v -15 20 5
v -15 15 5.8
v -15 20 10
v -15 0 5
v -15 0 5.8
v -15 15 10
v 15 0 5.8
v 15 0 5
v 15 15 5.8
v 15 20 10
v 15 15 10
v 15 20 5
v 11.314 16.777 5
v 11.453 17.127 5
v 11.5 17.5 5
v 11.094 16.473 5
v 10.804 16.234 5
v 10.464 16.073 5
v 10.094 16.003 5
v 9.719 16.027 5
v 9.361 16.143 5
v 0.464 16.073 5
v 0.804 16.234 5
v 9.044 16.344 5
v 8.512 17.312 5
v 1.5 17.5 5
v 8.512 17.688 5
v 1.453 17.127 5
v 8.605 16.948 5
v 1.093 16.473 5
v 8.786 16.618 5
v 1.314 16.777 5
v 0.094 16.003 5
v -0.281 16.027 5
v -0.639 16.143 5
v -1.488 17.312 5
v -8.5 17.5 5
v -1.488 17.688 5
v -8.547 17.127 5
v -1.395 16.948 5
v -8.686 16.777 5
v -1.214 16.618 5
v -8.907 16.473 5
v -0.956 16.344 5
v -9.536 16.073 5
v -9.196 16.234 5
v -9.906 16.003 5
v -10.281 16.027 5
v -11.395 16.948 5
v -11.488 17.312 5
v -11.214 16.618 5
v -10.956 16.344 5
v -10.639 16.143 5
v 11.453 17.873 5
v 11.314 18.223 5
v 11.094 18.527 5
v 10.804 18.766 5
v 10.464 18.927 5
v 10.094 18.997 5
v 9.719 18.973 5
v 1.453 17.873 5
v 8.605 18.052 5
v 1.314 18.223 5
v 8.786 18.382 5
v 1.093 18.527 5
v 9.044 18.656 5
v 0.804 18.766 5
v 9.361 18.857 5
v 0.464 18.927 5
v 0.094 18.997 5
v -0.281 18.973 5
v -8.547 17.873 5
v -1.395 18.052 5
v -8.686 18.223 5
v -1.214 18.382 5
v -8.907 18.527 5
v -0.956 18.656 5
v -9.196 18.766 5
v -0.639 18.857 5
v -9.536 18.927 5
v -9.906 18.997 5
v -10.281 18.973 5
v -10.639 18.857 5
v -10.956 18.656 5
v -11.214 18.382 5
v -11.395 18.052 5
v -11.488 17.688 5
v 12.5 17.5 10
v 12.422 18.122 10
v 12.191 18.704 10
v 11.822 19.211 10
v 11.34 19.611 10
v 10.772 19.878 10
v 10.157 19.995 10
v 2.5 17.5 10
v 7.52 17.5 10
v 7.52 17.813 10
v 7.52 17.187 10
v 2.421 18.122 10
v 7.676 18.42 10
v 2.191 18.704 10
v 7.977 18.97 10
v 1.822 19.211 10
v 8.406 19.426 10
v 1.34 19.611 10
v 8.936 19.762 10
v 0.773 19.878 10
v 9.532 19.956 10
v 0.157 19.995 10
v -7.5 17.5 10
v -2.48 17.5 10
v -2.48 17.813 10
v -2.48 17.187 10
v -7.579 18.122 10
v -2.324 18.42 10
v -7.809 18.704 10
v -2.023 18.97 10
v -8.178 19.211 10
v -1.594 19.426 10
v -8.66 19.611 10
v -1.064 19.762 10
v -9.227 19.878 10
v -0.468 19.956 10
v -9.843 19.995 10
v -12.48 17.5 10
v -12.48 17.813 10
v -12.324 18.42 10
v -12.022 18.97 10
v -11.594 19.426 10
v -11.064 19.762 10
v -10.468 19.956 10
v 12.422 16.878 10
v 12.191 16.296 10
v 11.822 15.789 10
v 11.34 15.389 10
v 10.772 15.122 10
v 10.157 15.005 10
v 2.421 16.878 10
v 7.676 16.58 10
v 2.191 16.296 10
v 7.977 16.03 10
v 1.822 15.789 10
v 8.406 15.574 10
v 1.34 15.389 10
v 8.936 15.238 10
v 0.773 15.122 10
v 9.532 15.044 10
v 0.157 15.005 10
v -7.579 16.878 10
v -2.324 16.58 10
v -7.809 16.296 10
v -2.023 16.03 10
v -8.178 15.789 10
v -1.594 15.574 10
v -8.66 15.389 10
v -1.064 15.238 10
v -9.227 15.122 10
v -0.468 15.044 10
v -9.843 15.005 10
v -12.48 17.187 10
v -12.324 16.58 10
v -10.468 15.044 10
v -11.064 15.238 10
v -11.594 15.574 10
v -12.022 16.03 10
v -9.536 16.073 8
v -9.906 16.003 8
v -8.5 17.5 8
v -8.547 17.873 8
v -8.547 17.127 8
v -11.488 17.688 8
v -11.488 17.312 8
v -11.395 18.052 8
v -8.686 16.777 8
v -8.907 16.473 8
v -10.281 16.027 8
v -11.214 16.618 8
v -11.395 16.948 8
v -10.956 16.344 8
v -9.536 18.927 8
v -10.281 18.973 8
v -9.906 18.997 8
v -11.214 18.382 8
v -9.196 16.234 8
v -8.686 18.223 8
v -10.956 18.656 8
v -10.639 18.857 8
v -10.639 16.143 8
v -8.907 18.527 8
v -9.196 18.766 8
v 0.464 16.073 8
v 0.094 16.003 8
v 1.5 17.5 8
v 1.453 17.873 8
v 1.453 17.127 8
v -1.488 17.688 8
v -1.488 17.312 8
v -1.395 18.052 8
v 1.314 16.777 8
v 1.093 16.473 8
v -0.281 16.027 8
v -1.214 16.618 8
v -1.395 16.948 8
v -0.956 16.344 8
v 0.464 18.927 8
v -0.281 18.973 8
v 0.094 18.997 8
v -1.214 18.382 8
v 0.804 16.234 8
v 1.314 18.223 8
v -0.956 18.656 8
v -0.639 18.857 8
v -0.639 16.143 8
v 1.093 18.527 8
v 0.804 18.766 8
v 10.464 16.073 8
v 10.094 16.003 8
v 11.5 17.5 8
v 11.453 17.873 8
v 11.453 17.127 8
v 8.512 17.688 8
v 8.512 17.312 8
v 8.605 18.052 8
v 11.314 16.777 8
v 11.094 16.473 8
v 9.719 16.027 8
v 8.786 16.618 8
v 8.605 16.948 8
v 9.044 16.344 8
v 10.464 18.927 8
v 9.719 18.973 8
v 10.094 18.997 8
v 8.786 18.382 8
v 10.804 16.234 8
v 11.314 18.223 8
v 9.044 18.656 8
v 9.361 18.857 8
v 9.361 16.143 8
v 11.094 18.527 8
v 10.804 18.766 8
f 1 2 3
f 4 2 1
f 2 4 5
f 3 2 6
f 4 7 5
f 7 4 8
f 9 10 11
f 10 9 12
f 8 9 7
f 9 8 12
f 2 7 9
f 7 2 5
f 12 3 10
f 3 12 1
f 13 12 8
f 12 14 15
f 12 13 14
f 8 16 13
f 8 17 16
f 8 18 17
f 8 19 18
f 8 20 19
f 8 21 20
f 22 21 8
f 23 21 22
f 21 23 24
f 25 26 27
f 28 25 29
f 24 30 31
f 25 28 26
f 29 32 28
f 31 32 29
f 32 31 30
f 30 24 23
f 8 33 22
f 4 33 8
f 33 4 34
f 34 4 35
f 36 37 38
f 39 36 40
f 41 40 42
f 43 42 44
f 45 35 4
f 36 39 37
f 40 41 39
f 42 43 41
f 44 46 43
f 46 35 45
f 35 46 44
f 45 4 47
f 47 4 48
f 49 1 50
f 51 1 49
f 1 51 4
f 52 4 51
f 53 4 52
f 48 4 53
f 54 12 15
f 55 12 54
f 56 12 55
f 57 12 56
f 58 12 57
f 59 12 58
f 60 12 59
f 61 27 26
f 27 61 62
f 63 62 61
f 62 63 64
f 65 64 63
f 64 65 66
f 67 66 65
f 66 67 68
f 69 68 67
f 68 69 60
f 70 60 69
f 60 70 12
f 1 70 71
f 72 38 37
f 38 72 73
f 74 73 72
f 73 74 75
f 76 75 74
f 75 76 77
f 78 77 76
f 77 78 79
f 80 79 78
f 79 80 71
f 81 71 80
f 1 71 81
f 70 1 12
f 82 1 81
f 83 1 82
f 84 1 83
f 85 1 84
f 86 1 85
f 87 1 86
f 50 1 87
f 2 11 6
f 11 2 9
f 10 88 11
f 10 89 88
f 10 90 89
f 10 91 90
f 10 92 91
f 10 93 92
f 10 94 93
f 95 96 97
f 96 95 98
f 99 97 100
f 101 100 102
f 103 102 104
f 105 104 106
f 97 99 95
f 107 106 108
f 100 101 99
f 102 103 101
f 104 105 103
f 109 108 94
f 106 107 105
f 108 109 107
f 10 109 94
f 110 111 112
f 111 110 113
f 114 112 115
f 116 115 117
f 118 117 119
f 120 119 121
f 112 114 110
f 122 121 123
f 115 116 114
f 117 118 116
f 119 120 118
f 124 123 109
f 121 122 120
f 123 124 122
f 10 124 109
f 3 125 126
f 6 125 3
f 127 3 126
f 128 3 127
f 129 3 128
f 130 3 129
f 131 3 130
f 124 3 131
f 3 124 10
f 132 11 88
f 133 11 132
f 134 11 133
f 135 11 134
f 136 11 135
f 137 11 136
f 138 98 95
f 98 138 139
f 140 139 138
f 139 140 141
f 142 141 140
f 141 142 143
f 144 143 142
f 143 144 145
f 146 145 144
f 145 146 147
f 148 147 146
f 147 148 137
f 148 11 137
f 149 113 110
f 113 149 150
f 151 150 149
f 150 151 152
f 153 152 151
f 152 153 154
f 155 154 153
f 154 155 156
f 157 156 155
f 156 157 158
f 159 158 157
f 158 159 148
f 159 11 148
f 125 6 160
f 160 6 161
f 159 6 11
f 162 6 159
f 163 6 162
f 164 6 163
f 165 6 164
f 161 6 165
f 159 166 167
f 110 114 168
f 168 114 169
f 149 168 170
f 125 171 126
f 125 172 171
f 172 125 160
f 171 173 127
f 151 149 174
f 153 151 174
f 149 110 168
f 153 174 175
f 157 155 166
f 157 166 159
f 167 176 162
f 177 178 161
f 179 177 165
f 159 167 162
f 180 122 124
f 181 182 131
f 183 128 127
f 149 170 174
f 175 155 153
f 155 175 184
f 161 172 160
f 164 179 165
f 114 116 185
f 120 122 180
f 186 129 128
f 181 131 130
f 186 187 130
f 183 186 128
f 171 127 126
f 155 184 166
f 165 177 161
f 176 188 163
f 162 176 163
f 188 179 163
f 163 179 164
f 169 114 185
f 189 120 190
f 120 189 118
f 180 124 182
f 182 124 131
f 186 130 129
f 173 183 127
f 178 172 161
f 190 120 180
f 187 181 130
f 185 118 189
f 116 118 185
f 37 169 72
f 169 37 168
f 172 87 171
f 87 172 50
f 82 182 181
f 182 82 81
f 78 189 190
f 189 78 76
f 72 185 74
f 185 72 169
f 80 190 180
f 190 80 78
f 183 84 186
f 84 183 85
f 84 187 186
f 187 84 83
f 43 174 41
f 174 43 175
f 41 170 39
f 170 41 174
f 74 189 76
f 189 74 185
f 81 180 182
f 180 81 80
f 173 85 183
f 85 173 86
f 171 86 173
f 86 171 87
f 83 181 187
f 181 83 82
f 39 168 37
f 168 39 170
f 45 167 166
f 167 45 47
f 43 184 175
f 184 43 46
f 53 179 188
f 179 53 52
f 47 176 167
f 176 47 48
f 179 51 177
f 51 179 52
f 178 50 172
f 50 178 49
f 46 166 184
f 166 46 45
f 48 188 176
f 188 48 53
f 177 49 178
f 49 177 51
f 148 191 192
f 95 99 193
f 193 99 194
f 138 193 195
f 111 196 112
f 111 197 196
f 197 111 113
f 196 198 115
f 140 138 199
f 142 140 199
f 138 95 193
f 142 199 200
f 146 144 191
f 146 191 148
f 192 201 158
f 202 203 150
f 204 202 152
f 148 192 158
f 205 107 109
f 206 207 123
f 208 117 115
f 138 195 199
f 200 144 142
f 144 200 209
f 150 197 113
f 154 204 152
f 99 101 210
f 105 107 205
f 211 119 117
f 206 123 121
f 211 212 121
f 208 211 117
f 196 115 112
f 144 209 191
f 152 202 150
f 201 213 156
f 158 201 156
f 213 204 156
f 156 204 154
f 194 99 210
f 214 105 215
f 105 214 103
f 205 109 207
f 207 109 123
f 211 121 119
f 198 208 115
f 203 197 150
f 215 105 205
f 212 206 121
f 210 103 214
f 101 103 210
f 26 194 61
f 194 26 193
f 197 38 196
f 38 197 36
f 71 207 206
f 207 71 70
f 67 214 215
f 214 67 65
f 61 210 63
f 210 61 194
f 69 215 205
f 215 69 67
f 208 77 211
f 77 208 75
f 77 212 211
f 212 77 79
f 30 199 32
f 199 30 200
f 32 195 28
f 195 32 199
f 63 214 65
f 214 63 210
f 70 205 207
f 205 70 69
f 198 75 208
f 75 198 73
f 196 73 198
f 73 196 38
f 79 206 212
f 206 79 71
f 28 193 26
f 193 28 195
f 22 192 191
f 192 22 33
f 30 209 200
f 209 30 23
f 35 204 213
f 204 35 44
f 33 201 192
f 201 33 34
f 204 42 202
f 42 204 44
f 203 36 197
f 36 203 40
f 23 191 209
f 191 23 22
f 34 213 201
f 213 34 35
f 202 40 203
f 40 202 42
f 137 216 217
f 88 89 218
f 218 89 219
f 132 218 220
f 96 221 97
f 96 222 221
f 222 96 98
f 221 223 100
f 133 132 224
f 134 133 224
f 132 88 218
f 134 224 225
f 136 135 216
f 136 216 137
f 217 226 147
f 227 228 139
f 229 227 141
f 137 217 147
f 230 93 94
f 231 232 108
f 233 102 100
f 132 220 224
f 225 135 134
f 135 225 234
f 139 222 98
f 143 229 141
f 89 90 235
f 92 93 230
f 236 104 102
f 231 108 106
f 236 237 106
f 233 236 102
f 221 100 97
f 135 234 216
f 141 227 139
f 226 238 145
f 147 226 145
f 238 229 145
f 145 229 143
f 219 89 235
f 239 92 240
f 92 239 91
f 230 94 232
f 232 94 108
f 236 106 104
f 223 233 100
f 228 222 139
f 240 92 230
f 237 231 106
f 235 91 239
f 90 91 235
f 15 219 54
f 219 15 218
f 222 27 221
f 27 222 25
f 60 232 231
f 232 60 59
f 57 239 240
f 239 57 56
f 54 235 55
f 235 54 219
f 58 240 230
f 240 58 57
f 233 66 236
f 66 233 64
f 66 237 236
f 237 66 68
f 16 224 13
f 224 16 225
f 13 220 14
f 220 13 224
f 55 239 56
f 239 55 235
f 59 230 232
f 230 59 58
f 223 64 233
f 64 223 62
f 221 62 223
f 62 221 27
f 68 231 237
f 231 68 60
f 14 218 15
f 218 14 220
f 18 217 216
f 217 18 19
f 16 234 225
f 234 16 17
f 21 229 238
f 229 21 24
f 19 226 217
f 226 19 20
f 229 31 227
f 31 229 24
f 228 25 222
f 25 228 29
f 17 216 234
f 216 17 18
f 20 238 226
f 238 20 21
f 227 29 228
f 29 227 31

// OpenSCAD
// file: openscad-extra/src/countersink.scad
/*
Countersink depression for tapered screw heads.
*/

module make_countersink(d1=0, d2=0, h=0, outer=10, inner=0, $fn=25){
    /*
    d1 = shaft diameter
    d2 = head diameter
    h = height of taper
    outer = height of head mass
    inner = height of shaft mass, including taper
    */
    default_taper_height = 2;
    d1 = d1 ? d1 : 2.5;
    d2 = d2 ? d2 : 5;
    h = h ? h : default_taper_height;
    inner = (inner ? inner : 10) - default_taper_height;
    
    translate([0, 0, -default_taper_height/2])
    union(){
        
        // taper
        cylinder(d1=d1, d2=d2, h=h, center=true, $fn=$fn);
    
        // big top
    	translate([0, 0, h/2])
    	cylinder(d=d2, h=outer, center=false, $fn=$fn);
        
    	// lower bottom
    	translate([0, 0, -h/2-inner])
    	cylinder(d=d1, h=inner, center=false, $fn=$fn);
	}
}

make_countersink(inner=10);

color("blue")
translate([0,2,0])
cylinder(d=2.5, h=20, center=true, $fn=100);
// file: foot_mock.scad
use <openscad-extra/src/countersink.scad>;

module foot_mock(){
    difference(){
        union(){
            cube([80, 10, 5], center=true);
            
            if(0)
            difference(){
                color("blue")
                scale([1,1,.6])
                translate([0,0,0])
                rotate([90,0,0])
                cylinder(d=80, h=10, center=true, $fn=50);
                
                // cylinder flat cutout
                if(0)
                translate([0,0,-100/2+5/2])
                cube([100, 100, 100], center=true);
            }
                    
            // pivot hub mass
            for(j=[0:1])
            mirror([j,0,0])
            hull()
            for(i=[0:1])
            translate([(-30/2-10/2/2-.5),0,5/2+5*i])
            rotate([0,90,0])
            cylinder(d=10, h=5, center=true, $fn=50);
        }
        
        // slot cutout
        if(0)
        translate([0,0,50/2+5/2-0.25])
        cube([100, 5.5, 50], center=true);

    
        // bottom mount holes
        color("red")
        for(i=[0:7])
        translate([10*i-35,0,-7])
        rotate([180,0,0])
        make_countersink(d1=2.5, d2=5, inner=10);
        
        // side mount holes
        color("red")
        for(i=[0:6])
        translate([10*i-30,-10,0])
        rotate([90,0,0])
        make_countersink(d1=2.5, d2=5, inner=20);
        
        // pivot holes
        color("red")
        for(i=[0:1])
        mirror([i,0,0])
        translate([-20.5,0,5/2+5])
        rotate([0,-90,0])
        make_countersink(d1=3, d2=5, inner=20);
    }
    
    // mounting holes
    if(0)
    color("red")
    for(i=[0:2])
    translate([11.2*i-11.2,5,17.5+10])
    rotate([-90,0,0])
    make_countersink(d1=2.5, d2=5, inner=20);
    
    
    
    if(0)
    translate([0,10,50/2+5/2])
    cube([30, 20, 50], center=true);
    
}

module foot_mock_ankle(){
    
    difference(){
        
        // main mass
        if(1)
        hull()
        for(i=[0:1])
        translate([0,0,(20+2.5)*i])
        rotate([0,90,0])
        cylinder(d=10-0.5, h=30, center=true, $fn=50);
        
        // mount axle hole
        rotate([0,90,0])
        cylinder(d=2.5, h=100, center=true, $fn=50);
        
        // mounting holes
        translate([0,0,-10+2.5])
        color("red")
        for(i=[0:2])
        translate([11.2*i-11.2, 5-.2, 17.5+10])
        rotate([-90,0,0])
        make_countersink(d1=2.5, d2=5, inner=20);
        
        // slot cutout
        if(1)
        translate([0,0,50/2+5/2+5/2])
        cube([100, 5.5, 50], center=true);
        
    }// end diff
}

module foot_mock_toe(major_length=80, minor_length=10, width=20, height=5){
    difference(){
        //color("red")
        linear_extrude(height=height)
        polygon([[-major_length/2,0], [major_length/2,0], [minor_length/2,width], [-minor_length/2,width]]);
        
        translate([0,5/2,5/2])
        cube([30.5,5.5,5.5], center=true);
        
        // side mount holes
        for(j=[0:1])
        mirror([j,0,0])
        color("red")
        for(i=[0:1])
        translate([10*i-30,4,5/2])
        rotate([-90,0,0])
        make_countersink(d1=3, d2=5, inner=20);
    
        // middle mount hole
        color("red")
        translate([0,20,5/2])
        rotate([-90,0,0])
        make_countersink(d1=3, d2=5, inner=20);

    }
}

module foot_mock_toe_spring(thickness=.4*2, length=20){

    difference(){
        union(){
            translate([0,thickness/2,length/2])
            cube([30, thickness, length], center=true);

            translate([0,5/2,5/2])
            cube([30, 5, 5], center=true);
        }
        
        // side mount holes
        color("red")
        for(i=[0:6])
        translate([10*i-30,5,5/2])
        rotate([-90,0,0])
        make_countersink(d1=3, d2=5, inner=20);
    }
}

if(1)
color("orange")
translate([0,0,10])
rotate([0,-30+4,0])
translate([0,0,50-15])
rotate([0,90,0])
rotate([90,0,0])
import("printable/leg_lower.stl");

translate([0,0,-5/2-15])
foot_mock();

translate([0,0,-10])
foot_mock_ankle();

translate([0,5,-20])
foot_mock_toe();

translate([0,5,-20])
foot_mock_toe_spring();
// main file
use <foot_mock.scad>;

if(0)
translate([0,0,-5/2-15])
foot_mock();

if(0)
translate([0,0,-10])
foot_mock_ankle();

if(0)
translate([0,5,-20])
foot_mock_toe();

if(1)
rotate([90,0,0])
translate([0,5,-20])
foot_mock_toe_spring();
